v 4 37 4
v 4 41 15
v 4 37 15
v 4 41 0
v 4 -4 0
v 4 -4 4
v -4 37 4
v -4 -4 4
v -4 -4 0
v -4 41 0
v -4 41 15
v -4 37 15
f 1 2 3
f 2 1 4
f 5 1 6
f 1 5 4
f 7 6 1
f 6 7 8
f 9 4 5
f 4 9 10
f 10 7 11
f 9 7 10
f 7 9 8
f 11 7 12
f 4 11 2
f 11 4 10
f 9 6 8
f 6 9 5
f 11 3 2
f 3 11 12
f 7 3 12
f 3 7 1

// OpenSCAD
// Generated by SolidPython 0.4.6 on 2019-12-25 17:35:51


translate(v = [0, 0, -53.6500000000]) {
	translate(v = [-4.0000000000, 0, 0]) {
		translate(v = [0, 0, 53.6500000000]) {
			translate(v = [0, -4.0000000000, 0]) {
				union() {
					cube(size = [8.0000000000, 45.0000000000, 4.0000000000]);
					translate(v = [0, 41.0000000000, 0]) {
						cube(size = [8.0000000000, 4.0000000000, 15.0000000000]);
					}
				}
			}
		}
	}
}
/***********************************************
*********      SolidPython code:      **********
************************************************
 
import solid as s
import solid.utils as u


def render(suffix, final):
    suffix += ".scad"
    s.scad_render_to_file(final, __file__.replace(".py", suffix))


wall = 4.0
wall2 = wall * 2.0
head_height = 13.0
sol_dia = 33.0
collar_dia = 20.0
sol_height = 38.0
slot_depth = 2.0
nt = 0.45  # nestle tolerance
nth = nt / 2.0
hammer_width = 8.0
hammer_slot_width = hammer_width + nt + nt
hammer_slot_height = hammer_slot_width
hammer_height = 15.0
hammer_length = 45.0
total_height = head_height + sol_height + wall2 + wall2
total_width = sol_dia + wall2
lid_width = total_width - wall2 - nt
lid_base_width = total_width - wall2 + slot_depth + slot_depth - nt
slot_width = lid_base_width + nt
back_height = total_height - wall - nt

# body shell
body = s.cylinder(d=total_width, h=total_height, segments=128)
body += u.left(total_width / 2.0)(
    s.cube(size=[total_width, total_width / 2.0, total_height])
)

# body cavity
body -= s.cylinder(d=total_width - wall2, h=total_height - wall, segments=128)
body -= u.left((total_width / 2.0) - wall)(
    s.cube(size=[total_width - wall2, total_width - wall / 2.0, total_height - wall])
)

slot = s.cylinder(d=slot_width, h=wall + nt, segments=128)
slot += u.left(slot_width / 2.0)(
    s.cube(size=[slot_width, total_width - wall / 2.0, wall + nt])
)
# body base slot
body -= u.up(wall)(slot)

# body top slot
body -= u.up(total_height - wall2 - head_height + nth)(slot)

# lid back
lid = u.left(lid_width / 2.0)(
    u.forward((total_width / 2.0) - wall)(s.cube(size=[lid_width, wall, back_height]))
)

base = s.cylinder(d=lid_base_width, h=wall, segments=128)
base += u.left(lid_base_width / 2.0)(
    s.cube(size=[lid_base_width, total_width / 2.0, wall])
)

# lid base
lid += u.up(wall + nth)(base)

# lid top
top_lid = base - s.cylinder(d=collar_dia, h=wall, segments=128)
top_lid -= u.left(collar_dia / 2.0)(
    u.back(collar_dia)(s.cube(size=[collar_dia, collar_dia, wall]))
)
lid += u.up(total_height - wall2 - head_height + nth)(top_lid)

# lid hammer slot
lid -= u.left(hammer_slot_width / 2.0)(
    u.forward((total_width / 2.0) - wall)(
        u.up(back_height - hammer_slot_height)(
            s.cube(size=[hammer_slot_width, wall, hammer_slot_height])
        )
    )
)

hammer = u.left(hammer_width / 2.0)(
    u.up(back_height - hammer_slot_height)(
        u.back(hammer_width / 2.0)(
            s.cube(size=[hammer_width, hammer_length, wall])
            + u.forward(hammer_length - wall)(
                s.cube(size=[hammer_width, wall, hammer_height])
            )
        )
    )
)

blue_lid = s.color(u.Blue)(lid)
red_hammer = s.color(u.Red)(hammer)
render("", body + blue_lid + red_hammer)
render(
    "-exploded",
    body
    + u.forward(total_width)(blue_lid)
    + u.forward(total_width + total_width)(red_hammer),
)
render(
    '-print-body',
    u.up(total_height)(s.rotate(a=[180,0,0])(body))
)
render(
    '-print-lid',
    u.up(total_width / 2.0)(s.rotate(a=[-90,0,0])(lid))
)
render(
    '-print-hammer',
    u.down(back_height - hammer_slot_height)(hammer)
)
 
 
************************************************/
